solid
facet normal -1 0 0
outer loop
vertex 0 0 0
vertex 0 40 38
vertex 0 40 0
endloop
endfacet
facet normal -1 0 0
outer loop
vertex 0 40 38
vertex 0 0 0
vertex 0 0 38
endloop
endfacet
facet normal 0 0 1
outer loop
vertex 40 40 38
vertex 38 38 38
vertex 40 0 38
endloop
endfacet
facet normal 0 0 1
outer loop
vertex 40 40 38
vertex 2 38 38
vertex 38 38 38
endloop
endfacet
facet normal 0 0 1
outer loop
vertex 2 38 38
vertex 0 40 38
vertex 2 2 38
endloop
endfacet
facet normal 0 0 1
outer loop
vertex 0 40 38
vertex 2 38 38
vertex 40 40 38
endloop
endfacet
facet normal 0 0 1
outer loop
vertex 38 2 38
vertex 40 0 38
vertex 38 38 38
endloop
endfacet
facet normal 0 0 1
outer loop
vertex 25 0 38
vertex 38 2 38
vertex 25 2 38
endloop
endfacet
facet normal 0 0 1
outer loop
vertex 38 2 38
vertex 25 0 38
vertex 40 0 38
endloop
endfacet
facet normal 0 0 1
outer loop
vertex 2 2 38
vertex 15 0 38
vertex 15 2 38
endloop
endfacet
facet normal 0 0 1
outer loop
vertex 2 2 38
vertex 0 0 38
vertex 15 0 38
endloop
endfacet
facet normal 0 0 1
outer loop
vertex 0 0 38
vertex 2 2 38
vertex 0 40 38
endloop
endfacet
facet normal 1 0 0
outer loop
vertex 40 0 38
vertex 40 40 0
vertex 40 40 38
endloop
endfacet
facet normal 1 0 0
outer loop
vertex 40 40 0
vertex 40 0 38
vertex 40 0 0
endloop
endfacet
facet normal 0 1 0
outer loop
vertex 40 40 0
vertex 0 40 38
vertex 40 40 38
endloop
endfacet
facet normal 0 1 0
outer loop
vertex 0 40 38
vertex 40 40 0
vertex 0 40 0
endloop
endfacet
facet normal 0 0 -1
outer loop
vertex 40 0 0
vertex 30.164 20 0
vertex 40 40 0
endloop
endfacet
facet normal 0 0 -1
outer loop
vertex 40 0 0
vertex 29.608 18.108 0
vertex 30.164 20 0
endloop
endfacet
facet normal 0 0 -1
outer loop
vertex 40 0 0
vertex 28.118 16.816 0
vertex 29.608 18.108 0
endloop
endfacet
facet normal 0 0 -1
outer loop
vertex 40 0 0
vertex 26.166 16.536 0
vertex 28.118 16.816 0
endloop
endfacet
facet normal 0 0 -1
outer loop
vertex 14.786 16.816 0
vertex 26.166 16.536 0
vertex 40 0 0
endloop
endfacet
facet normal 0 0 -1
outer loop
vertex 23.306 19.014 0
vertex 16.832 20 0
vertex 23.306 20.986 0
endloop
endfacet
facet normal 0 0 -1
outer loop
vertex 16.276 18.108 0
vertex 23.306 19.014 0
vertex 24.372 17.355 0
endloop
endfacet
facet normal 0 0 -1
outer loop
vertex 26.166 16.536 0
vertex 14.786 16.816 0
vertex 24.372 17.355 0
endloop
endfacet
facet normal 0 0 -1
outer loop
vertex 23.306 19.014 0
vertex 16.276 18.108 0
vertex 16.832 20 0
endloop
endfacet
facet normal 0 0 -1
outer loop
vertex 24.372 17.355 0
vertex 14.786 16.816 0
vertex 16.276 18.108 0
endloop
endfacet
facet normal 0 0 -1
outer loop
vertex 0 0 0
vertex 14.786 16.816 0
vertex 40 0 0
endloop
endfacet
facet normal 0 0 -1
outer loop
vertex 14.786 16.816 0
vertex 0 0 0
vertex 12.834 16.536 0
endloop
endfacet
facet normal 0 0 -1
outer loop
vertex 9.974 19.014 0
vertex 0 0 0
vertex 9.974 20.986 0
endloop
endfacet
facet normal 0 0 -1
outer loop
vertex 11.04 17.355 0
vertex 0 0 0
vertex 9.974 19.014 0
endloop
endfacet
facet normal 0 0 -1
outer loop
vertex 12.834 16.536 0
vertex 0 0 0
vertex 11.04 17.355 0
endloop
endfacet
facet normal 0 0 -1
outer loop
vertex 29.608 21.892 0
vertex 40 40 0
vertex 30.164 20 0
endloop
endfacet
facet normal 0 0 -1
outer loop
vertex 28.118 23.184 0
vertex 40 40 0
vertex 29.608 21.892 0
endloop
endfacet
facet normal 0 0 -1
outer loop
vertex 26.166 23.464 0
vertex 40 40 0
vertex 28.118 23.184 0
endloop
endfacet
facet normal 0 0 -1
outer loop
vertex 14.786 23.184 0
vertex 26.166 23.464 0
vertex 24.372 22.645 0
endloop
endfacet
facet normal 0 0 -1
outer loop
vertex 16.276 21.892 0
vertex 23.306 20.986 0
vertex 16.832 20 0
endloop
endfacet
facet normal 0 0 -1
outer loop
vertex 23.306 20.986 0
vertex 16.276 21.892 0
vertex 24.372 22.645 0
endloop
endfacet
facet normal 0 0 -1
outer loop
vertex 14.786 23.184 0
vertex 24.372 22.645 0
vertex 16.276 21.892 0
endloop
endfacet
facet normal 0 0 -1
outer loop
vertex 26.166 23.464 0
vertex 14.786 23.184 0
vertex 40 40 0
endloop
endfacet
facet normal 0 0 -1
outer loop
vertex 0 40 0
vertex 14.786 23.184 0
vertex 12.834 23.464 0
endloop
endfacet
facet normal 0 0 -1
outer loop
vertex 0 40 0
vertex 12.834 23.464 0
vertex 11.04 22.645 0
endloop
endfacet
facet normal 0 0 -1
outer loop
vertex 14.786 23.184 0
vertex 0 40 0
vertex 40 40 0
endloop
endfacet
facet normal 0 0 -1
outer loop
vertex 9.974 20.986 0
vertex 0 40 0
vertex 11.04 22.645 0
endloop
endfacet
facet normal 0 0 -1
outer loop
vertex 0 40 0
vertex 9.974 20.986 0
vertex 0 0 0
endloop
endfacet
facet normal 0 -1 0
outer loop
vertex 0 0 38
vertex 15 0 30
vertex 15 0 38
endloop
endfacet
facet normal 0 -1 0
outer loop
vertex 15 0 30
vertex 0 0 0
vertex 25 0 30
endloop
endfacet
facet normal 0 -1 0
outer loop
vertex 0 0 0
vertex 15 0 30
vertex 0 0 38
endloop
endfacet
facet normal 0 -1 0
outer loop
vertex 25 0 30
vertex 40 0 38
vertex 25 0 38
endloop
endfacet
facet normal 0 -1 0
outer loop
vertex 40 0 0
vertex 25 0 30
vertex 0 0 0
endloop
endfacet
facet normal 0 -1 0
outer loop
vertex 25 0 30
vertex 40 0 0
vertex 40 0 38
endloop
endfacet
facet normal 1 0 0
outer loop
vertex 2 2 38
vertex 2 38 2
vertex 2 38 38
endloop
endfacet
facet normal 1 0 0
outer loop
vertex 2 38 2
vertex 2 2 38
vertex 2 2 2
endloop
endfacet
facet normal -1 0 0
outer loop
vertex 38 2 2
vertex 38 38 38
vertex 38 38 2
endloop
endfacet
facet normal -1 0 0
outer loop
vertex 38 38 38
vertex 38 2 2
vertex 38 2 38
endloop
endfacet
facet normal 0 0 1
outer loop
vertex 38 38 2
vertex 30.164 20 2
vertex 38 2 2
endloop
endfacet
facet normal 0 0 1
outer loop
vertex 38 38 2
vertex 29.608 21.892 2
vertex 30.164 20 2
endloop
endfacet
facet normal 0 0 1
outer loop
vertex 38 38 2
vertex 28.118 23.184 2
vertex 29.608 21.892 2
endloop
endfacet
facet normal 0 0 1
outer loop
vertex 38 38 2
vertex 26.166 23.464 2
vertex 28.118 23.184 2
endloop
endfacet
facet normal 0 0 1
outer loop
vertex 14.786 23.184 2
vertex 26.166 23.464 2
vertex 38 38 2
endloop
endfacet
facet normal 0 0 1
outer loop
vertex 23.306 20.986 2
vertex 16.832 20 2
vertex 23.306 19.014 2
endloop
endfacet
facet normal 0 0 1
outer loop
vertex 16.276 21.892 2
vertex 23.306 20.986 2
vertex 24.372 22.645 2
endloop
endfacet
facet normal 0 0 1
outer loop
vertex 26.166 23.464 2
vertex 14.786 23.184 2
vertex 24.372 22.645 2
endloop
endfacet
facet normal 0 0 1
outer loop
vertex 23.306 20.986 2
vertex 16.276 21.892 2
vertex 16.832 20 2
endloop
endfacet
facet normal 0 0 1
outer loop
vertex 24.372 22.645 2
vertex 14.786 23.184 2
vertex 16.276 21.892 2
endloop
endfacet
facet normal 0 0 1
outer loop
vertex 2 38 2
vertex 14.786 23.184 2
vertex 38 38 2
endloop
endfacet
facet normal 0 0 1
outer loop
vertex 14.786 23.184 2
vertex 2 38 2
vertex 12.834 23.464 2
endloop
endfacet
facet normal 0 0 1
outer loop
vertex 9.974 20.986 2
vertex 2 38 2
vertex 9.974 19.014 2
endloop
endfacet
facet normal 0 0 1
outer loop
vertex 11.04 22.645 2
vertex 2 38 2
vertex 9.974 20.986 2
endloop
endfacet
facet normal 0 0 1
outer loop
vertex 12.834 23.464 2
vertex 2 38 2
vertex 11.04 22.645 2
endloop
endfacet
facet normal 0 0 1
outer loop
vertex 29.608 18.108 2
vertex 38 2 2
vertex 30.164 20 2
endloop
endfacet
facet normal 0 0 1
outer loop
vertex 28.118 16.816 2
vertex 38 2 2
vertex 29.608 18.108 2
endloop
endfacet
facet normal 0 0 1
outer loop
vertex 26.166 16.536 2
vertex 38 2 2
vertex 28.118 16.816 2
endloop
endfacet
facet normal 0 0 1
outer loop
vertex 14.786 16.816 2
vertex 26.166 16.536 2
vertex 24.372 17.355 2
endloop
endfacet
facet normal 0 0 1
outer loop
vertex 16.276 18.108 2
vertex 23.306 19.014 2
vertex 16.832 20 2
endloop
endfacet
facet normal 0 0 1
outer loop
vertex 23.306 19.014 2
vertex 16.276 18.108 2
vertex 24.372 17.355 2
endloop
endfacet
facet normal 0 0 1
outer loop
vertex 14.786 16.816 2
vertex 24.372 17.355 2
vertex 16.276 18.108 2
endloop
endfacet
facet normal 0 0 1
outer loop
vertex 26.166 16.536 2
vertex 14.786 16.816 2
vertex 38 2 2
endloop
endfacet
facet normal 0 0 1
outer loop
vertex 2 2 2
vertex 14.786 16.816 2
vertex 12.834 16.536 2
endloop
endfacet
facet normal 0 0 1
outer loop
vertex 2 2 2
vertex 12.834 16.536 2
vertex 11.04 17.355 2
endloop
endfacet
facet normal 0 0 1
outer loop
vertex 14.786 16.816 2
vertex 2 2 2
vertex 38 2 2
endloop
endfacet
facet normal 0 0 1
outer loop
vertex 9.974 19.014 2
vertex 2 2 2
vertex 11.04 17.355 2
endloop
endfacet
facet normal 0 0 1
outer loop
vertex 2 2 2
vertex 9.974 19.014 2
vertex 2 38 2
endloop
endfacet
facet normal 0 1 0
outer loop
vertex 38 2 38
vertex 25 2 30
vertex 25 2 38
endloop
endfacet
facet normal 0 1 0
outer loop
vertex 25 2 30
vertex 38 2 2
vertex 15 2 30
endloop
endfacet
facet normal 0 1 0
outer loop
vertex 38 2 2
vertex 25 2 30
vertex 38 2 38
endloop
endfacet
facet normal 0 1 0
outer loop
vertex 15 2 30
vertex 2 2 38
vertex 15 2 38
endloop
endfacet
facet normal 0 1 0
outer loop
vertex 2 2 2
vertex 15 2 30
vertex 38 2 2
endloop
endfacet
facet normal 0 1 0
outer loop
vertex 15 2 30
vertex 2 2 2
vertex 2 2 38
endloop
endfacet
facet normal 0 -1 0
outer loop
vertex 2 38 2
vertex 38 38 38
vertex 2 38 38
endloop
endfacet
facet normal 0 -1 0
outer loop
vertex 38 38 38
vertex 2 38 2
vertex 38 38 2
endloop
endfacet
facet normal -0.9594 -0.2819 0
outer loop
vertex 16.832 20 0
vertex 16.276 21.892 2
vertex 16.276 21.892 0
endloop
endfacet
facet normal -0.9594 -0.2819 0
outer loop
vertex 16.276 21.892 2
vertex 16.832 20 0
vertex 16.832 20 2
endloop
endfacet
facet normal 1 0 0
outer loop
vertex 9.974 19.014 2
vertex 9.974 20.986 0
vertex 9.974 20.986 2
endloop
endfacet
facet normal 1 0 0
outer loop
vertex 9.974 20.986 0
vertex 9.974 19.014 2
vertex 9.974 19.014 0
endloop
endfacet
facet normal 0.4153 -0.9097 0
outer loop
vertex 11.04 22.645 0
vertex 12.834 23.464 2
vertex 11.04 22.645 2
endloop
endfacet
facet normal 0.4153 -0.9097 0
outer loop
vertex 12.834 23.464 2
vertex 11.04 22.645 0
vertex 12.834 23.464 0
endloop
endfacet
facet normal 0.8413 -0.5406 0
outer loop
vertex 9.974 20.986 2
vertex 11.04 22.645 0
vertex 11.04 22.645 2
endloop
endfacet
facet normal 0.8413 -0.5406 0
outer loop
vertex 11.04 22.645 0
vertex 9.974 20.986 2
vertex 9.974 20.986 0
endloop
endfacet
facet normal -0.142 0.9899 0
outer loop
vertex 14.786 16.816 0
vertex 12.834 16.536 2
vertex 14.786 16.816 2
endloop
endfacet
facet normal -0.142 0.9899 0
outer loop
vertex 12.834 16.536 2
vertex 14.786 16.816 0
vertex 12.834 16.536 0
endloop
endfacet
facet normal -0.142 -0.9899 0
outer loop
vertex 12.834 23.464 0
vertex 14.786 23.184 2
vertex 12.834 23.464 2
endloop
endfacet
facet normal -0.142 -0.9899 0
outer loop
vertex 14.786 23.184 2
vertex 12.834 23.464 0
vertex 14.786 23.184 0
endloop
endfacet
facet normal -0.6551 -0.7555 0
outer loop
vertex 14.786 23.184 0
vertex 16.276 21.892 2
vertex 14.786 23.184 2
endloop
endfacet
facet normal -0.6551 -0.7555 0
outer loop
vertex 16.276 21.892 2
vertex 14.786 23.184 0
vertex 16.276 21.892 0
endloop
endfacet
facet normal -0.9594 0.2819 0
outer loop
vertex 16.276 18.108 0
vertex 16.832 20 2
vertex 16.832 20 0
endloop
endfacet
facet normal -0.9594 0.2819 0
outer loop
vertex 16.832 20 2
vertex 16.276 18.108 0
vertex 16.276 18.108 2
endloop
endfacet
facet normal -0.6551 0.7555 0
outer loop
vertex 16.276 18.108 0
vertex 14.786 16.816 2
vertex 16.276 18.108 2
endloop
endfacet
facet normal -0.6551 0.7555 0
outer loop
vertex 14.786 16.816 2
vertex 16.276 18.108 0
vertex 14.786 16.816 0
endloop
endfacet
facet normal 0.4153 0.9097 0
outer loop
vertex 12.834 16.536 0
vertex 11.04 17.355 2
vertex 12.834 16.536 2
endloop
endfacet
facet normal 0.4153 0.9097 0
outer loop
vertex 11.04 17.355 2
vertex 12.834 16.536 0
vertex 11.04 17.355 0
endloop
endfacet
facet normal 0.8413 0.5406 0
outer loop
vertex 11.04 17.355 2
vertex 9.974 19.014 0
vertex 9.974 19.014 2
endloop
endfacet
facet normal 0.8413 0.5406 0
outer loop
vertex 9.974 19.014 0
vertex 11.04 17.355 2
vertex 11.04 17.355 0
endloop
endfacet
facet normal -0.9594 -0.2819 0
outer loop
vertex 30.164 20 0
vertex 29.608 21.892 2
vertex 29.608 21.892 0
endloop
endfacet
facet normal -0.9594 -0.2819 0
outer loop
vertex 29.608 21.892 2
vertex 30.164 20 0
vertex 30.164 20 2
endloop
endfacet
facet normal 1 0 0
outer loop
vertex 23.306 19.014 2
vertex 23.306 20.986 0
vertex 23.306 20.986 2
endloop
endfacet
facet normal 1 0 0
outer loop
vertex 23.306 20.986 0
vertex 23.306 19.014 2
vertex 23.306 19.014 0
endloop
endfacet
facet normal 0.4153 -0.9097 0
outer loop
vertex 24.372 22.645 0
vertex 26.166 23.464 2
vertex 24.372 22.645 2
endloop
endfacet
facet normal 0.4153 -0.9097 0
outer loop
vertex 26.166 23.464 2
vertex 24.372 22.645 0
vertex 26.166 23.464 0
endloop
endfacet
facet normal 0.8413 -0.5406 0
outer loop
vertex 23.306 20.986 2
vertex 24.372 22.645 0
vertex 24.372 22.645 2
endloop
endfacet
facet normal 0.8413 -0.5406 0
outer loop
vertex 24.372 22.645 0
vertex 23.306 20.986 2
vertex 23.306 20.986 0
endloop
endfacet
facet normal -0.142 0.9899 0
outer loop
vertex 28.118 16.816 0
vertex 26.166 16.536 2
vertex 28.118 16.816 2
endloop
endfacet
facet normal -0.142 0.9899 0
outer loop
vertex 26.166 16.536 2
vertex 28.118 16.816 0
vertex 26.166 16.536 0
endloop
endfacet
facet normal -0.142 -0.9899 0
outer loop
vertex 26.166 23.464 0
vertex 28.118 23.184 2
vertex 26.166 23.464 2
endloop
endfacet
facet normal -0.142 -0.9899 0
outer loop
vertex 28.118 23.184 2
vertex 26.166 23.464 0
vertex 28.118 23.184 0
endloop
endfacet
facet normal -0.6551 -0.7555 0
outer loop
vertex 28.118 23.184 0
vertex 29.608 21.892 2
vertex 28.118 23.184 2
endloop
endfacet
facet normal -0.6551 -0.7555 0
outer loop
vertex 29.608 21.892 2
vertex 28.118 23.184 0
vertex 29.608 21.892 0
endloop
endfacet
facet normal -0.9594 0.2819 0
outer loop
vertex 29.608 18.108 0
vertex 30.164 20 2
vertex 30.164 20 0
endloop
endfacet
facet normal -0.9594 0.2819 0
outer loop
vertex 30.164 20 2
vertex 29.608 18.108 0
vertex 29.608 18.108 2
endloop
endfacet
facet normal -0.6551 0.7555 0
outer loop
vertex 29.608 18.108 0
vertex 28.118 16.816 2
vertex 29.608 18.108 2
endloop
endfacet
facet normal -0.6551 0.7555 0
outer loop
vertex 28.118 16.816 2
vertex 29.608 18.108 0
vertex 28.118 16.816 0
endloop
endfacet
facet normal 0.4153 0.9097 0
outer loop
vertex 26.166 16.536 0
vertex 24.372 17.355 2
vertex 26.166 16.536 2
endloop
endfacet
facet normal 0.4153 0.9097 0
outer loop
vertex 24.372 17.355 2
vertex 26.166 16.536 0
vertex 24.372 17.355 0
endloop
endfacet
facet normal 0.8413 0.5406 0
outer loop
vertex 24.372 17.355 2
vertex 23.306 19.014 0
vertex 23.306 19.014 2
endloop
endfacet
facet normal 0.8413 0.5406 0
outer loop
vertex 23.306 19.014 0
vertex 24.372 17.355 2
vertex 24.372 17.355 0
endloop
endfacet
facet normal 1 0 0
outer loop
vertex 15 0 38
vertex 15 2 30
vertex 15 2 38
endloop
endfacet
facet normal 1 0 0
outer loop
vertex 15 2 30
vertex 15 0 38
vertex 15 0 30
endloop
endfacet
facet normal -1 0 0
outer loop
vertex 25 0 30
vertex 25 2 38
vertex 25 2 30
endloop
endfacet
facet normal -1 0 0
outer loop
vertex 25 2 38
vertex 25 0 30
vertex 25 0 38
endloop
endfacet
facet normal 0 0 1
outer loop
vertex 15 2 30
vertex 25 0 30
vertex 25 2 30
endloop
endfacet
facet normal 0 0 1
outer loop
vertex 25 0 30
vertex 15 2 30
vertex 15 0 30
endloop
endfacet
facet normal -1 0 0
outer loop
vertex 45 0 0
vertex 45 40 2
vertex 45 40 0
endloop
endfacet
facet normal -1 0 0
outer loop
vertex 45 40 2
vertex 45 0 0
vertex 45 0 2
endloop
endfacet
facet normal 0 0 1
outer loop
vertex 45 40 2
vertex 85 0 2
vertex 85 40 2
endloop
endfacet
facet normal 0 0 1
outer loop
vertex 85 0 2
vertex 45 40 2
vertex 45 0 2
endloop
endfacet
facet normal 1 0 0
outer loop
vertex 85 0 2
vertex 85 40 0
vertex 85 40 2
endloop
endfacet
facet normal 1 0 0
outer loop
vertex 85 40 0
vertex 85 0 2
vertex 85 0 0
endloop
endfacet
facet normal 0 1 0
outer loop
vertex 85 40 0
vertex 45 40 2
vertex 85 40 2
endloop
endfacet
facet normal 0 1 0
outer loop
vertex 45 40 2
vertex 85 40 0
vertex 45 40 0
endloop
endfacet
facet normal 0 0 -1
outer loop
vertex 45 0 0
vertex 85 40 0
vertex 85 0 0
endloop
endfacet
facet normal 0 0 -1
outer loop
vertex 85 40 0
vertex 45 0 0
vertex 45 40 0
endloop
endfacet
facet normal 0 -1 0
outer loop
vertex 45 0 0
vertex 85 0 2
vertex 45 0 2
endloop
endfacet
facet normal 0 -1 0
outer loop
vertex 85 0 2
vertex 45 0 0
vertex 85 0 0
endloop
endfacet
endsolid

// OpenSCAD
wall = 2;

difference()
{

    cube([40,40,38]);
    translate([wall,wall,wall])   
    cube([40-wall*2,40-wall * 2, 38 -wall]);
    
    translate([40* 0.3333,40/2,0])
    cylinder(d=7,wall);
    
    translate([40* 0.6666,40/2,0])
    cylinder(d=7,wall);
    
    translate([40/2-5,0,30])
    cube ([10,10,10]);
    
}

translate([45,0,0])
cube([40,40,2]);
